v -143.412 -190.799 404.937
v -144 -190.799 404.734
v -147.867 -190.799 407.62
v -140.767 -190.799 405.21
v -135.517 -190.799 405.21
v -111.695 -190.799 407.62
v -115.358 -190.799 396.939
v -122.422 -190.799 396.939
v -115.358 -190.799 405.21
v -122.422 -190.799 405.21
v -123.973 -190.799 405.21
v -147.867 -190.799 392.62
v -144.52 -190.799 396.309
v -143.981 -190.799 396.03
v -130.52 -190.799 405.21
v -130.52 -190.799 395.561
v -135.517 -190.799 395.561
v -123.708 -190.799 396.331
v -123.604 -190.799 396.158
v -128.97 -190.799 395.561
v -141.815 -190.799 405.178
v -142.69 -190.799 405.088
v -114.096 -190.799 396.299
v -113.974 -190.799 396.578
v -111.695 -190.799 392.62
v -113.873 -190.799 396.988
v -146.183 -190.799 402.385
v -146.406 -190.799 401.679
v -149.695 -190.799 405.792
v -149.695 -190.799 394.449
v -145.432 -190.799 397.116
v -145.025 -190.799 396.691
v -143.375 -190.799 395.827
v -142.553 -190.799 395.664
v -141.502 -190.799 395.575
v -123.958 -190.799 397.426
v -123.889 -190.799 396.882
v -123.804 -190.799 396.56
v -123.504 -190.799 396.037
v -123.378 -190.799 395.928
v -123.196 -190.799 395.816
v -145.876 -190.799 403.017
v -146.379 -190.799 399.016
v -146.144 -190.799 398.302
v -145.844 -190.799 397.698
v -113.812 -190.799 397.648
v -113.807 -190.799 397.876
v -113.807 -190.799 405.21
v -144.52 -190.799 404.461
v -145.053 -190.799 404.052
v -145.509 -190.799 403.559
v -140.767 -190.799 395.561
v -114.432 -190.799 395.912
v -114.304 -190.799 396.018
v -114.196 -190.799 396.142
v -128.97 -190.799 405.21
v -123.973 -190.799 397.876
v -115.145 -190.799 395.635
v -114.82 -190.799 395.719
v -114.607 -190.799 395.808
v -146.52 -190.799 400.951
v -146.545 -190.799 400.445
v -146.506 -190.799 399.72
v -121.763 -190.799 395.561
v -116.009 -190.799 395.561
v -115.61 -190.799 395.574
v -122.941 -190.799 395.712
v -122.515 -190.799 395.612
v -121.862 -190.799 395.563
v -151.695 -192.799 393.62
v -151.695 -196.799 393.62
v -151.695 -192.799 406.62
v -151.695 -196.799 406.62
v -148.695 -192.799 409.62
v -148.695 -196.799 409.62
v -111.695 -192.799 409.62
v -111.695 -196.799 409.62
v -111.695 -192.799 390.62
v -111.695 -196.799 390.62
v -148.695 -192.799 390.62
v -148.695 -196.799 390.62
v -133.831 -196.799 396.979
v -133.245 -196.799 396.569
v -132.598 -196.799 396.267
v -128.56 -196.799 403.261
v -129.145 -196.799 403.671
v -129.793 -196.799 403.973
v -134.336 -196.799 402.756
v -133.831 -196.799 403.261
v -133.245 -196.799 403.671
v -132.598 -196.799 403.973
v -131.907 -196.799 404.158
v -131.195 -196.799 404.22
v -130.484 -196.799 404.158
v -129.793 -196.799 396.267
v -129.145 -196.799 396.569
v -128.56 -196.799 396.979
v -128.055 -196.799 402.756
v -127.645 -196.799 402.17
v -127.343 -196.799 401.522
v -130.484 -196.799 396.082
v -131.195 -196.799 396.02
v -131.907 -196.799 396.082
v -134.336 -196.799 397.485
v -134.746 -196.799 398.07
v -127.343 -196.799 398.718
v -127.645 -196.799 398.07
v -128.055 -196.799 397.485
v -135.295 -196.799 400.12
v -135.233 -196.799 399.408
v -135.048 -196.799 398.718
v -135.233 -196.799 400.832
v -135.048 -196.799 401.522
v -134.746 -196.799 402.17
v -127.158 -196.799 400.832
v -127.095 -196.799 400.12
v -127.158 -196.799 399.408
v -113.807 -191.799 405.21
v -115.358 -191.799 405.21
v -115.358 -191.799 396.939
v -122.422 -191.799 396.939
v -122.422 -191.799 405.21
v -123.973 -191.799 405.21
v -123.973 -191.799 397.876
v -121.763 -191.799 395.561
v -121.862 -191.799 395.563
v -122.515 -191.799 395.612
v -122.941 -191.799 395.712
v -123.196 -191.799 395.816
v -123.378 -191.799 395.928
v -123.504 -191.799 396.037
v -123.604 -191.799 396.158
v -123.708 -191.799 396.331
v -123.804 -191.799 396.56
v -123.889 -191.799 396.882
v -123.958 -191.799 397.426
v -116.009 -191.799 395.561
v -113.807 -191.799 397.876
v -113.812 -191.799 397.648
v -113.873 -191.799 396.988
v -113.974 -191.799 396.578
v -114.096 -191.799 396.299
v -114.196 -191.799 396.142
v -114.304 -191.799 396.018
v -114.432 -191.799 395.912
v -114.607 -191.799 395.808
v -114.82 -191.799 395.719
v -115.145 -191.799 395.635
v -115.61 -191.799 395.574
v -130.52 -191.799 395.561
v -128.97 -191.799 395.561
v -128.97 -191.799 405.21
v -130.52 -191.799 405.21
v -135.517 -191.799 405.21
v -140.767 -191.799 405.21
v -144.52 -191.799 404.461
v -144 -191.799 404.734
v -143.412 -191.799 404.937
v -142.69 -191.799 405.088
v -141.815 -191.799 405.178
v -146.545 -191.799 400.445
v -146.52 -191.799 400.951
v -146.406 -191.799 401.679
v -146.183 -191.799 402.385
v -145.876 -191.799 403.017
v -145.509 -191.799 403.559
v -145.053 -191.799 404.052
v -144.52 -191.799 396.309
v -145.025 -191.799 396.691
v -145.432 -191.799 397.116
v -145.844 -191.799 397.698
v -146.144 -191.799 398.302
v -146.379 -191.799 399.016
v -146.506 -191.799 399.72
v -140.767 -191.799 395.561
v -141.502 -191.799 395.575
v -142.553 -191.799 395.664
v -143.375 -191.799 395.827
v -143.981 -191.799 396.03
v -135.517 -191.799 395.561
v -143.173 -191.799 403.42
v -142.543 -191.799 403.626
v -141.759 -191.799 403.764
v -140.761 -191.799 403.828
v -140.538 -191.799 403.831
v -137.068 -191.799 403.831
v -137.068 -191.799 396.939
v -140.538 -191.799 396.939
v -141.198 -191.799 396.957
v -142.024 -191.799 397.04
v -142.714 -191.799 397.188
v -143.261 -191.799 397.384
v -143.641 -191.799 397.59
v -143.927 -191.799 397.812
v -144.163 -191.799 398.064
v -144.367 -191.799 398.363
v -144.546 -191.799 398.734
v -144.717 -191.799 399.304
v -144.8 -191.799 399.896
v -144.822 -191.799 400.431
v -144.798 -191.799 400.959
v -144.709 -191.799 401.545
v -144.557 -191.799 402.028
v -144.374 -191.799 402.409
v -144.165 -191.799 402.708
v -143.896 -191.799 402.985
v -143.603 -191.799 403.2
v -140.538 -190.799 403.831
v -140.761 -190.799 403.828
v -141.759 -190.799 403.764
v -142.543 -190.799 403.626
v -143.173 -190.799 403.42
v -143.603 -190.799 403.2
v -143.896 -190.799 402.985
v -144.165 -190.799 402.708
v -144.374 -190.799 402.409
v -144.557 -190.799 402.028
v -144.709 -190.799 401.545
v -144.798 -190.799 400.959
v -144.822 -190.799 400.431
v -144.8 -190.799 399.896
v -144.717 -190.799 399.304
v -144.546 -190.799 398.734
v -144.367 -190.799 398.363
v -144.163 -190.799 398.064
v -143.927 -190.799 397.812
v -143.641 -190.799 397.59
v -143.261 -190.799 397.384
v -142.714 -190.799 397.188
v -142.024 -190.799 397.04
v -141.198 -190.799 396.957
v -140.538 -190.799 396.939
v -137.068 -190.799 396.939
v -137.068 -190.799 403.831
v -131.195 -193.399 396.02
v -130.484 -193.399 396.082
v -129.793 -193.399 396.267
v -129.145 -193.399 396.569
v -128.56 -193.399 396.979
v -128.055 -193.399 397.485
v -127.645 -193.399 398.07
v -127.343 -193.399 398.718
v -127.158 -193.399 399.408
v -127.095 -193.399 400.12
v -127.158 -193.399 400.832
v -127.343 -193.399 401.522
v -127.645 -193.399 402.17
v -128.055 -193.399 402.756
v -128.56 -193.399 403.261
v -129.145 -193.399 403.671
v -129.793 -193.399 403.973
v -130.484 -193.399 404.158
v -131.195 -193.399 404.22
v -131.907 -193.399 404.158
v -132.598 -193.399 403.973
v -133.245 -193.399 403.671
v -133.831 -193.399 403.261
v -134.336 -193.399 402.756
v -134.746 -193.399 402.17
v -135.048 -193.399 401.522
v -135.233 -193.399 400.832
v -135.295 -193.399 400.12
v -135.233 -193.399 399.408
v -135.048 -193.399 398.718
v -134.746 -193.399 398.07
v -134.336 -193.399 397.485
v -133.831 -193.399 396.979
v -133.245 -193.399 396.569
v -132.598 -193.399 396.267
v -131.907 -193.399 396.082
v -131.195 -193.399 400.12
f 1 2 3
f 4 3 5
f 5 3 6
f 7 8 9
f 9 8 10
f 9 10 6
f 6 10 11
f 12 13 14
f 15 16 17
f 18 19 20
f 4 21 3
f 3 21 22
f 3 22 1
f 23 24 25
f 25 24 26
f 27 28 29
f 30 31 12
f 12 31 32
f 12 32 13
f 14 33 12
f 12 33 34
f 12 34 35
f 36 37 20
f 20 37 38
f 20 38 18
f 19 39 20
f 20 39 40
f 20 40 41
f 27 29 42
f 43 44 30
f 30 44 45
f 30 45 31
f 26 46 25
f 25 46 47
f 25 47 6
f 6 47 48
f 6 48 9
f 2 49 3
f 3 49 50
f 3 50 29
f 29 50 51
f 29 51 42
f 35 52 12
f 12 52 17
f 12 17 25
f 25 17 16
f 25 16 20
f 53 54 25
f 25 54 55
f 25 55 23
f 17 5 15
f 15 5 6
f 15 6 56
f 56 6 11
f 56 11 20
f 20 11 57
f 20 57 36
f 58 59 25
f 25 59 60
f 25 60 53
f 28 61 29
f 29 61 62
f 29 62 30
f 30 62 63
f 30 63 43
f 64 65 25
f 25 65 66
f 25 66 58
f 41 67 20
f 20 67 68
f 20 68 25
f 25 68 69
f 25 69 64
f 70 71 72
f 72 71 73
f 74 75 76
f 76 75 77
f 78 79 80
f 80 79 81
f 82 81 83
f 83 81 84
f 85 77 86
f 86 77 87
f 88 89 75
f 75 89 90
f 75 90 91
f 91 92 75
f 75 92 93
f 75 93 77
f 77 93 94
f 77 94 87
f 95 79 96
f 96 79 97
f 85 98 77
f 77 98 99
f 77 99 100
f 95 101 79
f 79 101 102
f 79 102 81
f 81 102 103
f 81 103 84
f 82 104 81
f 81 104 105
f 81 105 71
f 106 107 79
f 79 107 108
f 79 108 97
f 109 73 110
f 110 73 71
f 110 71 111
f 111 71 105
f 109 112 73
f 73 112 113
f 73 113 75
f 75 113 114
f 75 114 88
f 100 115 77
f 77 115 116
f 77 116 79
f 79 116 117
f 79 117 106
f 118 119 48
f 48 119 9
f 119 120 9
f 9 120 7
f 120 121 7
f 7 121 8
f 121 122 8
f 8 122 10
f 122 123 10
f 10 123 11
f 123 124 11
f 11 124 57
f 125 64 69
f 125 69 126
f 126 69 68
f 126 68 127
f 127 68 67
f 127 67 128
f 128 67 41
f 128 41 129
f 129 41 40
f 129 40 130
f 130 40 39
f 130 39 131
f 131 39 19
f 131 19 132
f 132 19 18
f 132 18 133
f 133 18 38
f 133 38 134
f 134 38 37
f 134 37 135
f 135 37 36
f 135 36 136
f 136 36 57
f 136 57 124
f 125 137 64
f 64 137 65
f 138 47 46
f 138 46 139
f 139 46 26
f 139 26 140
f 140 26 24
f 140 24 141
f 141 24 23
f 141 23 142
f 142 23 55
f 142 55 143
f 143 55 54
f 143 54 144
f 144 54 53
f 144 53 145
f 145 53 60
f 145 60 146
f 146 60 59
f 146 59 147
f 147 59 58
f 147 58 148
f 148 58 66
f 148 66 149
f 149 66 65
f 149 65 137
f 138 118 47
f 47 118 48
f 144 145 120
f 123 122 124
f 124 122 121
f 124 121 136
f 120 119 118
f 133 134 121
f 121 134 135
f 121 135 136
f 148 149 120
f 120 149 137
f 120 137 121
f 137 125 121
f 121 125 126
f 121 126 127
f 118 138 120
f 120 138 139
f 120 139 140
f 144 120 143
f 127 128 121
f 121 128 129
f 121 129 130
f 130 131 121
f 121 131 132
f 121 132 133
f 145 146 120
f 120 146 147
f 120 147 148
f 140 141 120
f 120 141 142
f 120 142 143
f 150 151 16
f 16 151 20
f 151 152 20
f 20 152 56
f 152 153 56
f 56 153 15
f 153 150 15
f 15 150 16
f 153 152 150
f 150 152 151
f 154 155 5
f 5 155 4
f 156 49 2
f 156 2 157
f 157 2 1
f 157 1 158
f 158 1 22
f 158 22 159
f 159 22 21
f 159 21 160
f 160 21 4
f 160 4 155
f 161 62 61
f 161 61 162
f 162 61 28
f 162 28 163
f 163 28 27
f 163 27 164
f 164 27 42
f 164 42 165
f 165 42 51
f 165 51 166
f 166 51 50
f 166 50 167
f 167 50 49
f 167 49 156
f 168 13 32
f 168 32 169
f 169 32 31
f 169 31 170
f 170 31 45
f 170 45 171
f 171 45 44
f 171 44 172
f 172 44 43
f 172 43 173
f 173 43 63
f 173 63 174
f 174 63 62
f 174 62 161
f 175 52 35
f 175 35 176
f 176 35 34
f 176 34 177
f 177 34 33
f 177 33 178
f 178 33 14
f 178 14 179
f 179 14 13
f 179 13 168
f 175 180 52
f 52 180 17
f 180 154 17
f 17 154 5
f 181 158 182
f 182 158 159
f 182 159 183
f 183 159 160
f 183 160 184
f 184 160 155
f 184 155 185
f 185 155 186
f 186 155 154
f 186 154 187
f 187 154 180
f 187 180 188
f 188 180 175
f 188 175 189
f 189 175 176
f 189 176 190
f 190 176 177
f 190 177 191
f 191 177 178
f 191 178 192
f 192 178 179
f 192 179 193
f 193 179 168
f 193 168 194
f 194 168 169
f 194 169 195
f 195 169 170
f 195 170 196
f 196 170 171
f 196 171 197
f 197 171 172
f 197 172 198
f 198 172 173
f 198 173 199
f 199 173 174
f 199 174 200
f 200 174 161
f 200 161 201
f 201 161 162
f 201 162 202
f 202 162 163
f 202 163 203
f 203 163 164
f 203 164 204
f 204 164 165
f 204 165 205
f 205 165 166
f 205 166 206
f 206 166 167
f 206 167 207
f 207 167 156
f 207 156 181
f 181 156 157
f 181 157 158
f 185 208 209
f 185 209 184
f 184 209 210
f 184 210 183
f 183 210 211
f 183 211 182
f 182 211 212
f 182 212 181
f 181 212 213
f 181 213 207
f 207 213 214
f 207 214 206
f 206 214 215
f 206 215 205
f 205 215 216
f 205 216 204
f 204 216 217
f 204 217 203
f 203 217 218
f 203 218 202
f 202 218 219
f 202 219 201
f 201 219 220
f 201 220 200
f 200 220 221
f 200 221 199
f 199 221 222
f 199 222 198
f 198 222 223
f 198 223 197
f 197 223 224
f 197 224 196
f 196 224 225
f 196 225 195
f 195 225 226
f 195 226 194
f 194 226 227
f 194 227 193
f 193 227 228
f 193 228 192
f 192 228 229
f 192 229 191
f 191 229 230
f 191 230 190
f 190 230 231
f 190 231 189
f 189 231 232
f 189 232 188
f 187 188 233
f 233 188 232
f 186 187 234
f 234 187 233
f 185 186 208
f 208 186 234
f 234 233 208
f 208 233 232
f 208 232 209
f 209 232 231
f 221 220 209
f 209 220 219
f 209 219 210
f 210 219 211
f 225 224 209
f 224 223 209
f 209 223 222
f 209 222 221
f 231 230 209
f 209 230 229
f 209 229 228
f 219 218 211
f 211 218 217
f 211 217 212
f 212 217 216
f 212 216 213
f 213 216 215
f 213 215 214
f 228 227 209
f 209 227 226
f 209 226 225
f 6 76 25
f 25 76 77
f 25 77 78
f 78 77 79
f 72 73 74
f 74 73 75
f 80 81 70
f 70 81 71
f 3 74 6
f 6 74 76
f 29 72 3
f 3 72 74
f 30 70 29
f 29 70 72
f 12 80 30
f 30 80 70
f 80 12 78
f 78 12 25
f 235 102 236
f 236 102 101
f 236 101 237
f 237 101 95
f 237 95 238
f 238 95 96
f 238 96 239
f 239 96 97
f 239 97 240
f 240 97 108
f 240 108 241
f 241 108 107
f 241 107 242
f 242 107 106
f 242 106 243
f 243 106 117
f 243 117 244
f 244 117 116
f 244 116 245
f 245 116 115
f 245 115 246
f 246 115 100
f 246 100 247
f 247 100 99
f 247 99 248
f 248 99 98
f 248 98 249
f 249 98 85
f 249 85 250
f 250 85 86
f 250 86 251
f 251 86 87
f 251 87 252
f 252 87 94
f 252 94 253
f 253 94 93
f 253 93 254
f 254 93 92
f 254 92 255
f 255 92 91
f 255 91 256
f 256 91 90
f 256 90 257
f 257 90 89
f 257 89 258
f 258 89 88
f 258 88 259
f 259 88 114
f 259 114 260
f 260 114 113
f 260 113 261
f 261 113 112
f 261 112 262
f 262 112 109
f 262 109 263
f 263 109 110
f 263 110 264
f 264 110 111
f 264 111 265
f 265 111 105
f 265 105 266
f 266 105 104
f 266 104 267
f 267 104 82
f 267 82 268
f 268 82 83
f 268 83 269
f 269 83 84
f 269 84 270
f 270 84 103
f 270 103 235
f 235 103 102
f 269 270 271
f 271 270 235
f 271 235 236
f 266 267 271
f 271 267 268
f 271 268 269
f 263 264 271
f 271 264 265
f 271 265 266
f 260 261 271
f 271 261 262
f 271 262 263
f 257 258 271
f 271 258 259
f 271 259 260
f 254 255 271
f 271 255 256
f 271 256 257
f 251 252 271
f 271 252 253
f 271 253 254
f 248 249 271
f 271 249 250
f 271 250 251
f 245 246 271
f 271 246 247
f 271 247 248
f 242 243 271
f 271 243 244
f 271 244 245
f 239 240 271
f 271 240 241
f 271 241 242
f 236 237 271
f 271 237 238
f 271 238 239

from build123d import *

# Parameters (mm, degrees)
BOSS_EXTRUDE1_DEPTH = 6
SKETCH2_W           = 1.55073591
SKETCH2_H           = 9.649023438
SKETCH2_W_2         = 1.550735909
CUT_EXTRUDE1_DEPTH  = 1
SKETCH3_W           = 49.814071519
SKETCH3_H           = 34.699545546
CUT_EXTRUDE2_DEPTH  = 10
CHAMFER1_SIZE       = 3
CHAMFER2_SIZE       = 2
SKETCH4_R           = 4.1
CUT_EXTRUDE3_DEPTH  = 3.4


with BuildPart() as part:
    # Sketch1 → Boss-Extrude1 (new body)
    with BuildSketch(Plane(origin=(0, -196.798939869, 0), x_dir=(1, 0, 0), z_dir=(0, 1, 0))):
        Polygon((-110.695481055, -390.620141885), (-70.695481055, -390.620141885), (-70.695481055, -409.620141885), (-110.695481055, -409.620141885), (-151.695481055, -409.620141885), (-151.695481055, -390.620141885), align=None)
    extrude(amount=BOSS_EXTRUDE1_DEPTH)

    # Sketch2 → Cut-Extrude1 (cut)
    # profile 1 of 6: a face of its own
    with BuildSketch(Plane(origin=(0, -190.798939869, 0), x_dir=(1, 0, 0), z_dir=(0, 1, 0))):
        with BuildLine():
            add(Edge.make_bspline(
                [(-140.767176982, -405.209924667), (-140.982622928, -405.208412821), (-141.394982016, -405.205519181), (-141.98403336, -405.168701103), (-142.517358029, -405.117955452), (-142.996891336, -405.040429638), (-143.431861328, -404.937751856), (-143.828275274, -404.808826708), (-144.192604534, -404.655107583), (-144.412843494, -404.524922655), (-144.520173264, -404.46147921)],
                knots=[0, 0, 0, 0, 1.333778163, 2.552823848, 3.653108193, 4.649746513, 5.558133507, 6.417402386, 7.228747549, 8, 8, 8, 8], degree=3))
            add(Edge.make_bspline(
                [(-144.520173264, -404.46147921), (-144.672688651, -404.354540566), (-144.977706991, -404.140671998), (-145.372980808, -403.740179693), (-145.72204175, -403.288685781), (-146.015251375, -402.783895607), (-146.252341242, -402.23844628), (-146.422101614, -401.66260039), (-146.524137936, -401.061196848), (-146.537803169, -400.652341907), (-146.544745145, -400.444642444)],
                knots=[0, 0, 0, 0, 0.952297785, 1.904517931, 2.867930349, 3.869019748, 4.885904814, 5.906780791, 6.936638737, 8, 8, 8, 8], degree=3))
            add(Edge.make_bspline(
                [(-146.544745145, -400.444642444), (-146.539017026, -400.224388593), (-146.527802756, -399.793184944), (-146.425839385, -399.164163809), (-146.258098069, -398.569953885), (-146.027848138, -398.012133469), (-145.734933397, -397.499500284), (-145.384408604, -397.041985203), (-144.985328734, -396.634035669), (-144.675593052, -396.417833194), (-144.520173264, -396.309346685)],
                knots=[0, 0, 0, 0, 1.100129358, 2.153786604, 3.174592563, 4.179911314, 5.162319574, 6.115853573, 7.05456925, 8, 8, 8, 8], degree=3))
            add(Edge.make_bspline(
                [(-144.520173264, -396.309346685), (-144.415407214, -396.247970567), (-144.198209286, -396.120727383), (-143.840423238, -395.967019912), (-143.444768852, -395.841274433), (-143.011380567, -395.735735637), (-142.529145335, -395.655193263), (-141.993148894, -395.601522013), (-141.399450617, -395.565451573), (-140.984411915, -395.562464625), (-140.767176982, -395.560901229)],
                knots=[0, 0, 0, 0, 0.751413761, 1.557809164, 2.404944974, 3.320203742, 4.317937033, 5.430050062, 6.654865437, 8, 8, 8, 8], degree=3))
            Line((-140.767176982, -395.560901229), (-135.517289788, -395.560901229))
            Line((-135.517289788, -395.560901229), (-135.517289788, -405.209924667))
            Line((-135.517289788, -405.209924667), (-140.767176982, -405.209924667))
        make_face()
        with BuildLine():
            Line((-140.538335746, -403.831492747), (-137.068025698, -403.831492747))
            Line((-137.068025698, -403.831492747), (-137.068025698, -396.939333149))
            Line((-137.068025698, -396.939333149), (-140.538335746, -396.939333149))
            add(Edge.make_bspline(
                [(-140.538335746, -396.939333149), (-140.726862755, -396.941898287), (-141.089956251, -396.946838613), (-141.61301485, -396.984845883), (-142.093527417, -397.044798091), (-142.531495923, -397.132160177), (-142.925368528, -397.248552244), (-143.278930228, -397.383732816), (-143.589154837, -397.547989389), (-143.856977936, -397.741453756), (-144.088661152, -397.964049484), (-144.285418794, -398.219866085), (-144.453911174, -398.507093156), (-144.587443165, -398.829479607), (-144.695661065, -399.182540893), (-144.769772109, -399.569730192), (-144.811875271, -399.989610443), (-144.818346787, -400.28031641), (-144.821705246, -400.431181195)],
                knots=[0, 0, 0, 0, 1.40931624, 2.714271877, 3.918424909, 5.027624621, 6.048757475, 6.985660279, 7.853111911, 8.665027323, 9.447928266, 10.246427284, 11.070312611, 11.930128696, 12.849083366, 13.826707191, 14.872147839, 16, 16, 16, 16], degree=3))
            add(Edge.make_bspline(
                [(-144.821705246, -400.431181195), (-144.818709771, -400.576712398), (-144.812924864, -400.857764438), (-144.765683368, -401.263673078), (-144.694488189, -401.639383199), (-144.580929863, -401.980833169), (-144.445105089, -402.294186016), (-144.27545686, -402.57538752), (-144.073112413, -402.824282209), (-143.83895635, -403.042456395), (-143.566561363, -403.230826533), (-143.2546296, -403.391353977), (-142.901690894, -403.528470783), (-142.507862117, -403.640795062), (-142.072601063, -403.725173206), (-141.597799376, -403.786080538), (-141.081882008, -403.823960231), (-140.724169188, -403.828917449), (-140.538335746, -403.831492747)],
                knots=[0, 0, 0, 0, 1.1029475, 2.130028734, 3.094733, 3.996236287, 4.852145578, 5.679426148, 6.477428238, 7.276560664, 8.097578654, 8.980088779, 9.930191586, 10.963809582, 12.080624623, 13.288249086, 14.591233026, 16, 16, 16, 16], degree=3))
        make_face(mode=Mode.SUBTRACT)
    # profile 2 of 6: a face of its own
    with BuildSketch(Plane(origin=(0, -190.798939869, 0), x_dir=(1, 0, 0), z_dir=(0, 1, 0))):
        with Locations((-129.745106125, -400.385412948)):
            Rectangle(SKETCH2_W, SKETCH2_H)
    # profile 3 of 6: a face of its own
    with BuildSketch(Plane(origin=(0, -190.798939869, 0), x_dir=(1, 0, 0), z_dir=(0, 1, 0))):
        with BuildLine():
            Line((-115.357722964, -405.209924667), (-115.357722964, -396.939333149))
            Line((-115.357722964, -396.939333149), (-122.422186552, -396.939333149))
            Line((-122.422186552, -396.939333149), (-122.422186552, -405.209924667))
            Line((-122.422186552, -405.209924667), (-123.972922461, -405.209924667))
            Line((-123.972922461, -405.209924667), (-123.972922461, -397.876236094))
            add(Edge.make_bspline(
                [(-123.972922461, -397.876236094), (-123.97130062, -397.768503726), (-123.968175155, -397.560891645), (-123.946562754, -397.263453332), (-123.913361153, -396.992319774), (-123.861781613, -396.749497692), (-123.798905063, -396.532206755), (-123.717930323, -396.342601202), (-123.623893906, -396.179127334), (-123.51405496, -396.039134081), (-123.380645379, -395.924069451), (-123.223997755, -395.826555258), (-123.043098505, -395.743432714), (-122.835801675, -395.677092248), (-122.603622791, -395.623157153), (-122.345091238, -395.586720416), (-122.061773796, -395.565800066), (-121.864927889, -395.56257696), (-121.76258534, -395.560901229)],
                knots=[0, 0, 0, 0, 1.365025829, 2.630554399, 3.777289411, 4.823296905, 5.773086012, 6.639126, 7.429026898, 8.157168554, 8.882463115, 9.649102086, 10.488604984, 11.398409027, 12.402469484, 13.50569655, 14.703181711, 16, 16, 16, 16], degree=3))
            Line((-121.76258534, -395.560901229), (-116.009247426, -395.560901229))
            add(Edge.make_bspline(
                [(-116.009247426, -395.560901229), (-115.906920359, -395.562687865), (-115.710104231, -395.566124284), (-115.427333413, -395.58552546), (-115.171085642, -395.626525893), (-114.940696482, -395.680226348), (-114.733396449, -395.745508539), (-114.553275043, -395.832261863), (-114.396325587, -395.931154528), (-114.266726678, -396.050908492), (-114.154943277, -396.190042043), (-114.062808079, -396.355700348), (-113.981390872, -396.544829811), (-113.917656822, -396.761041229), (-113.866888225, -397.002247145), (-113.833414163, -397.270620412), (-113.811650677, -397.564474201), (-113.808585204, -397.769400211), (-113.806987054, -397.876236094)],
                knots=[0, 0, 0, 0, 1.301446602, 2.503205558, 3.60080036, 4.597332017, 5.510383128, 6.357737689, 7.133266863, 7.860254787, 8.590995162, 9.393593455, 10.262724318, 11.204977956, 12.254718625, 13.394230236, 14.64151108, 16, 16, 16, 16], degree=3))
            Line((-113.806987054, -397.876236094), (-113.806987054, -405.209924667))
            Line((-113.806987054, -405.209924667), (-115.357722964, -405.209924667))
        make_face()
    # profile 4 of 6: a face of its own
    with BuildSketch(Plane(origin=(0, -190.798939869, 0), x_dir=(1, 0, 0), z_dir=(0, 1, 0))):
        with BuildLine():
            add(Edge.make_bspline(
                [(-97.955019978, -402.870359553), (-97.956652565, -402.978088999), (-97.959798739, -403.185695451), (-97.981268964, -403.483172415), (-98.015048775, -403.755050365), (-98.065378023, -403.999133459), (-98.1304323, -404.217037438), (-98.206687836, -404.40992551), (-98.301548404, -404.575336569), (-98.411034046, -404.718120224), (-98.544442988, -404.835934988), (-98.701069946, -404.936199437), (-98.882708774, -405.022503111), (-99.090920415, -405.091152386), (-99.324340246, -405.145039922), (-99.583864206, -405.180769412), (-99.869613361, -405.206059906), (-100.069270672, -405.208599655), (-100.173433849, -405.209924667)],
                knots=[0, 0, 0, 0, 1.356221993, 2.613588442, 3.7529275, 4.803245948, 5.746909319, 6.613424892, 7.408010909, 8.14031288, 8.868419245, 9.636206373, 10.47510186, 11.393329314, 12.390914008, 13.487025728, 14.688956683, 16, 16, 16, 16], degree=3))
            Line((-100.173433849, -405.209924667), (-106.936365454, -405.209924667))
            add(Edge.make_bspline(
                [(-106.936365454, -405.209924667), (-107.03959143, -405.208168009), (-107.237308227, -405.204803345), (-107.521846366, -405.185117085), (-107.779867844, -405.144247356), (-108.01302586, -405.090709797), (-108.221545349, -405.025218465), (-108.404305019, -404.941105061), (-108.562292124, -404.842079279), (-108.695959314, -404.723411798), (-108.805834581, -404.580848257), (-108.899064948, -404.415265905), (-108.981397593, -404.224482592), (-109.043478168, -404.005085856), (-109.09525377, -403.759657576), (-109.128239011, -403.486707323), (-109.150133277, -403.187505345), (-109.153187914, -402.978991502), (-109.154779325, -402.870359553)],
                knots=[0, 0, 0, 0, 1.299210286, 2.488479226, 3.585823455, 4.582994824, 5.497291421, 6.331034297, 7.108000517, 7.835805208, 8.567803767, 9.362060566, 10.222158455, 11.176253704, 12.226136976, 13.376204297, 14.633049786, 16, 16, 16, 16], degree=3))
            Line((-109.154779325, -402.870359553), (-109.154779325, -397.854698095))
            add(Edge.make_bspline(
                [(-109.154779325, -397.854698095), (-109.153151378, -397.747864039), (-109.150015111, -397.542046438), (-109.128503265, -397.247278496), (-109.094894709, -396.978008156), (-109.044020497, -396.736842057), (-108.980901322, -396.521291491), (-108.899001076, -396.334013033), (-108.80658263, -396.171325929), (-108.69573208, -396.033634198), (-108.561285836, -395.920666277), (-108.403637682, -395.824563938), (-108.221581059, -395.740232658), (-108.01335545, -395.674186162), (-107.77970286, -395.624053469), (-107.52162289, -395.586441232), (-107.237333904, -395.5658101), (-107.039600238, -395.562585014), (-106.936365454, -395.560901229)],
                knots=[0, 0, 0, 0, 1.357245466, 2.61475614, 3.753224731, 4.80200455, 5.743395722, 6.6012629, 7.393257341, 8.114460715, 8.834220599, 9.61255537, 10.454283276, 11.377336392, 12.381536746, 13.487687791, 14.68834675, 16, 16, 16, 16], degree=3))
            Line((-106.936365454, -395.560901229), (-105.81908177, -395.560901229))
            Line((-105.81908177, -395.560901229), (-106.974056952, -393.14864537))
            Line((-106.974056952, -393.14864537), (-105.420628793, -393.14864537))
            Line((-105.420628793, -393.14864537), (-104.384112603, -395.560901229))
            Line((-104.384112603, -395.560901229), (-100.173433849, -395.560901229))
            add(Edge.make_bspline(
                [(-100.173433849, -395.560901229), (-100.069299861, -395.562576695), (-99.869770228, -395.565787032), (-99.583710784, -395.586483719), (-99.324398952, -395.623381546), (-99.090777766, -395.67665049), (-98.883528866, -395.746452514), (-98.700271675, -395.828557698), (-98.545451596, -395.929855275), (-98.410938513, -396.044261005), (-98.302420462, -396.184244467), (-98.205884472, -396.345061043), (-98.130494516, -396.534972277), (-98.066128283, -396.748472614), (-98.014313393, -396.98778752), (-97.981722229, -397.253596433), (-97.959616393, -397.545617805), (-97.95659546, -397.74875672), (-97.955019978, -397.854698095)],
                knots=[0, 0, 0, 0, 1.324586597, 2.538021266, 3.64545599, 4.653345889, 5.581058773, 6.423763498, 7.199481985, 7.927542786, 8.658461541, 9.441536144, 10.306446208, 11.248929857, 12.276599877, 13.416389652, 14.652590838, 16, 16, 16, 16], degree=3))
            Line((-97.955019978, -397.854698095), (-97.955019978, -402.870359553))
        make_face()
        Polygon((-105.178326307, -396.939333149), (-107.604043416, -396.939333149), (-107.604043416, -403.831492747), (-99.505755888, -403.831492747), (-99.505755888, -396.939333149), (-103.75412614, -396.939333149), (-102.744532449, -399.106594272), (-103.845662635, -399.523892998), align=None, mode=Mode.SUBTRACT)
    # profile 5 of 6: a face of its own
    with BuildSketch(Plane(origin=(0, -190.798939869, 0), x_dir=(1, 0, 0), z_dir=(0, 1, 0))):
        with Locations((-92.182836315, -400.385412948)):
            Rectangle(SKETCH2_W_2, SKETCH2_H)
    # profile 6 of 6: a face of its own
    with BuildSketch(Plane(origin=(0, -190.798939869, 0), x_dir=(1, 0, 0), z_dir=(0, 1, 0))):
        Polygon((-79.173885073, -395.560901229), (-79.173885073, -405.209924667), (-80.724620983, -405.209924667), (-80.724620983, -396.939333149), (-87.961388561, -396.939333149), (-87.961388561, -395.560901229), align=None)
    extrude(amount=-CUT_EXTRUDE1_DEPTH, mode=Mode.SUBTRACT)

    # Sketch3 → Cut-Extrude2 (cut)
    with BuildSketch(Plane(origin=(0, -190.798939869, 0), x_dir=(1, 0, 0), z_dir=(0, 1, 0))):
        with Locations((-86.788445295, -401.485593686)):
            Rectangle(SKETCH3_W, SKETCH3_H)
    extrude(amount=-CUT_EXTRUDE2_DEPTH, mode=Mode.SUBTRACT)

    # Chamfer1
    chamfer1_edges = [part.edges().sort_by_distance(p)[0] for p in [
        (-151.695481055, -193.798939869, 409.620141885),
        (-151.695481055, -193.798939869, 390.620141885),
    ]]
    chamfer(chamfer1_edges, length=CHAMFER1_SIZE)

    # Chamfer2
    chamfer2_edges = [part.edges().sort_by_distance(p)[0] for p in [
        (-130.195481055, -190.798939869, 390.620141885),
        (-130.195481055, -190.798939869, 409.620141885),
        (-151.695481055, -190.798939869, 400.120141885),
        (-150.195481055, -190.798939869, 392.120141885),
        (-150.195481055, -190.798939869, 408.120141885),
    ]]
    chamfer(chamfer2_edges, length=CHAMFER2_SIZE)

    # Sketch4 → Cut-Extrude3 (cut)
    with BuildSketch(Plane.XZ.offset(196.798939869)):
        with Locations(Location((-131.195481055, 400.120141885, 0), (0, 0, 270))):
            Circle(SKETCH4_R)
    extrude(amount=-CUT_EXTRUDE3_DEPTH, mode=Mode.SUBTRACT)


solid = part.part
